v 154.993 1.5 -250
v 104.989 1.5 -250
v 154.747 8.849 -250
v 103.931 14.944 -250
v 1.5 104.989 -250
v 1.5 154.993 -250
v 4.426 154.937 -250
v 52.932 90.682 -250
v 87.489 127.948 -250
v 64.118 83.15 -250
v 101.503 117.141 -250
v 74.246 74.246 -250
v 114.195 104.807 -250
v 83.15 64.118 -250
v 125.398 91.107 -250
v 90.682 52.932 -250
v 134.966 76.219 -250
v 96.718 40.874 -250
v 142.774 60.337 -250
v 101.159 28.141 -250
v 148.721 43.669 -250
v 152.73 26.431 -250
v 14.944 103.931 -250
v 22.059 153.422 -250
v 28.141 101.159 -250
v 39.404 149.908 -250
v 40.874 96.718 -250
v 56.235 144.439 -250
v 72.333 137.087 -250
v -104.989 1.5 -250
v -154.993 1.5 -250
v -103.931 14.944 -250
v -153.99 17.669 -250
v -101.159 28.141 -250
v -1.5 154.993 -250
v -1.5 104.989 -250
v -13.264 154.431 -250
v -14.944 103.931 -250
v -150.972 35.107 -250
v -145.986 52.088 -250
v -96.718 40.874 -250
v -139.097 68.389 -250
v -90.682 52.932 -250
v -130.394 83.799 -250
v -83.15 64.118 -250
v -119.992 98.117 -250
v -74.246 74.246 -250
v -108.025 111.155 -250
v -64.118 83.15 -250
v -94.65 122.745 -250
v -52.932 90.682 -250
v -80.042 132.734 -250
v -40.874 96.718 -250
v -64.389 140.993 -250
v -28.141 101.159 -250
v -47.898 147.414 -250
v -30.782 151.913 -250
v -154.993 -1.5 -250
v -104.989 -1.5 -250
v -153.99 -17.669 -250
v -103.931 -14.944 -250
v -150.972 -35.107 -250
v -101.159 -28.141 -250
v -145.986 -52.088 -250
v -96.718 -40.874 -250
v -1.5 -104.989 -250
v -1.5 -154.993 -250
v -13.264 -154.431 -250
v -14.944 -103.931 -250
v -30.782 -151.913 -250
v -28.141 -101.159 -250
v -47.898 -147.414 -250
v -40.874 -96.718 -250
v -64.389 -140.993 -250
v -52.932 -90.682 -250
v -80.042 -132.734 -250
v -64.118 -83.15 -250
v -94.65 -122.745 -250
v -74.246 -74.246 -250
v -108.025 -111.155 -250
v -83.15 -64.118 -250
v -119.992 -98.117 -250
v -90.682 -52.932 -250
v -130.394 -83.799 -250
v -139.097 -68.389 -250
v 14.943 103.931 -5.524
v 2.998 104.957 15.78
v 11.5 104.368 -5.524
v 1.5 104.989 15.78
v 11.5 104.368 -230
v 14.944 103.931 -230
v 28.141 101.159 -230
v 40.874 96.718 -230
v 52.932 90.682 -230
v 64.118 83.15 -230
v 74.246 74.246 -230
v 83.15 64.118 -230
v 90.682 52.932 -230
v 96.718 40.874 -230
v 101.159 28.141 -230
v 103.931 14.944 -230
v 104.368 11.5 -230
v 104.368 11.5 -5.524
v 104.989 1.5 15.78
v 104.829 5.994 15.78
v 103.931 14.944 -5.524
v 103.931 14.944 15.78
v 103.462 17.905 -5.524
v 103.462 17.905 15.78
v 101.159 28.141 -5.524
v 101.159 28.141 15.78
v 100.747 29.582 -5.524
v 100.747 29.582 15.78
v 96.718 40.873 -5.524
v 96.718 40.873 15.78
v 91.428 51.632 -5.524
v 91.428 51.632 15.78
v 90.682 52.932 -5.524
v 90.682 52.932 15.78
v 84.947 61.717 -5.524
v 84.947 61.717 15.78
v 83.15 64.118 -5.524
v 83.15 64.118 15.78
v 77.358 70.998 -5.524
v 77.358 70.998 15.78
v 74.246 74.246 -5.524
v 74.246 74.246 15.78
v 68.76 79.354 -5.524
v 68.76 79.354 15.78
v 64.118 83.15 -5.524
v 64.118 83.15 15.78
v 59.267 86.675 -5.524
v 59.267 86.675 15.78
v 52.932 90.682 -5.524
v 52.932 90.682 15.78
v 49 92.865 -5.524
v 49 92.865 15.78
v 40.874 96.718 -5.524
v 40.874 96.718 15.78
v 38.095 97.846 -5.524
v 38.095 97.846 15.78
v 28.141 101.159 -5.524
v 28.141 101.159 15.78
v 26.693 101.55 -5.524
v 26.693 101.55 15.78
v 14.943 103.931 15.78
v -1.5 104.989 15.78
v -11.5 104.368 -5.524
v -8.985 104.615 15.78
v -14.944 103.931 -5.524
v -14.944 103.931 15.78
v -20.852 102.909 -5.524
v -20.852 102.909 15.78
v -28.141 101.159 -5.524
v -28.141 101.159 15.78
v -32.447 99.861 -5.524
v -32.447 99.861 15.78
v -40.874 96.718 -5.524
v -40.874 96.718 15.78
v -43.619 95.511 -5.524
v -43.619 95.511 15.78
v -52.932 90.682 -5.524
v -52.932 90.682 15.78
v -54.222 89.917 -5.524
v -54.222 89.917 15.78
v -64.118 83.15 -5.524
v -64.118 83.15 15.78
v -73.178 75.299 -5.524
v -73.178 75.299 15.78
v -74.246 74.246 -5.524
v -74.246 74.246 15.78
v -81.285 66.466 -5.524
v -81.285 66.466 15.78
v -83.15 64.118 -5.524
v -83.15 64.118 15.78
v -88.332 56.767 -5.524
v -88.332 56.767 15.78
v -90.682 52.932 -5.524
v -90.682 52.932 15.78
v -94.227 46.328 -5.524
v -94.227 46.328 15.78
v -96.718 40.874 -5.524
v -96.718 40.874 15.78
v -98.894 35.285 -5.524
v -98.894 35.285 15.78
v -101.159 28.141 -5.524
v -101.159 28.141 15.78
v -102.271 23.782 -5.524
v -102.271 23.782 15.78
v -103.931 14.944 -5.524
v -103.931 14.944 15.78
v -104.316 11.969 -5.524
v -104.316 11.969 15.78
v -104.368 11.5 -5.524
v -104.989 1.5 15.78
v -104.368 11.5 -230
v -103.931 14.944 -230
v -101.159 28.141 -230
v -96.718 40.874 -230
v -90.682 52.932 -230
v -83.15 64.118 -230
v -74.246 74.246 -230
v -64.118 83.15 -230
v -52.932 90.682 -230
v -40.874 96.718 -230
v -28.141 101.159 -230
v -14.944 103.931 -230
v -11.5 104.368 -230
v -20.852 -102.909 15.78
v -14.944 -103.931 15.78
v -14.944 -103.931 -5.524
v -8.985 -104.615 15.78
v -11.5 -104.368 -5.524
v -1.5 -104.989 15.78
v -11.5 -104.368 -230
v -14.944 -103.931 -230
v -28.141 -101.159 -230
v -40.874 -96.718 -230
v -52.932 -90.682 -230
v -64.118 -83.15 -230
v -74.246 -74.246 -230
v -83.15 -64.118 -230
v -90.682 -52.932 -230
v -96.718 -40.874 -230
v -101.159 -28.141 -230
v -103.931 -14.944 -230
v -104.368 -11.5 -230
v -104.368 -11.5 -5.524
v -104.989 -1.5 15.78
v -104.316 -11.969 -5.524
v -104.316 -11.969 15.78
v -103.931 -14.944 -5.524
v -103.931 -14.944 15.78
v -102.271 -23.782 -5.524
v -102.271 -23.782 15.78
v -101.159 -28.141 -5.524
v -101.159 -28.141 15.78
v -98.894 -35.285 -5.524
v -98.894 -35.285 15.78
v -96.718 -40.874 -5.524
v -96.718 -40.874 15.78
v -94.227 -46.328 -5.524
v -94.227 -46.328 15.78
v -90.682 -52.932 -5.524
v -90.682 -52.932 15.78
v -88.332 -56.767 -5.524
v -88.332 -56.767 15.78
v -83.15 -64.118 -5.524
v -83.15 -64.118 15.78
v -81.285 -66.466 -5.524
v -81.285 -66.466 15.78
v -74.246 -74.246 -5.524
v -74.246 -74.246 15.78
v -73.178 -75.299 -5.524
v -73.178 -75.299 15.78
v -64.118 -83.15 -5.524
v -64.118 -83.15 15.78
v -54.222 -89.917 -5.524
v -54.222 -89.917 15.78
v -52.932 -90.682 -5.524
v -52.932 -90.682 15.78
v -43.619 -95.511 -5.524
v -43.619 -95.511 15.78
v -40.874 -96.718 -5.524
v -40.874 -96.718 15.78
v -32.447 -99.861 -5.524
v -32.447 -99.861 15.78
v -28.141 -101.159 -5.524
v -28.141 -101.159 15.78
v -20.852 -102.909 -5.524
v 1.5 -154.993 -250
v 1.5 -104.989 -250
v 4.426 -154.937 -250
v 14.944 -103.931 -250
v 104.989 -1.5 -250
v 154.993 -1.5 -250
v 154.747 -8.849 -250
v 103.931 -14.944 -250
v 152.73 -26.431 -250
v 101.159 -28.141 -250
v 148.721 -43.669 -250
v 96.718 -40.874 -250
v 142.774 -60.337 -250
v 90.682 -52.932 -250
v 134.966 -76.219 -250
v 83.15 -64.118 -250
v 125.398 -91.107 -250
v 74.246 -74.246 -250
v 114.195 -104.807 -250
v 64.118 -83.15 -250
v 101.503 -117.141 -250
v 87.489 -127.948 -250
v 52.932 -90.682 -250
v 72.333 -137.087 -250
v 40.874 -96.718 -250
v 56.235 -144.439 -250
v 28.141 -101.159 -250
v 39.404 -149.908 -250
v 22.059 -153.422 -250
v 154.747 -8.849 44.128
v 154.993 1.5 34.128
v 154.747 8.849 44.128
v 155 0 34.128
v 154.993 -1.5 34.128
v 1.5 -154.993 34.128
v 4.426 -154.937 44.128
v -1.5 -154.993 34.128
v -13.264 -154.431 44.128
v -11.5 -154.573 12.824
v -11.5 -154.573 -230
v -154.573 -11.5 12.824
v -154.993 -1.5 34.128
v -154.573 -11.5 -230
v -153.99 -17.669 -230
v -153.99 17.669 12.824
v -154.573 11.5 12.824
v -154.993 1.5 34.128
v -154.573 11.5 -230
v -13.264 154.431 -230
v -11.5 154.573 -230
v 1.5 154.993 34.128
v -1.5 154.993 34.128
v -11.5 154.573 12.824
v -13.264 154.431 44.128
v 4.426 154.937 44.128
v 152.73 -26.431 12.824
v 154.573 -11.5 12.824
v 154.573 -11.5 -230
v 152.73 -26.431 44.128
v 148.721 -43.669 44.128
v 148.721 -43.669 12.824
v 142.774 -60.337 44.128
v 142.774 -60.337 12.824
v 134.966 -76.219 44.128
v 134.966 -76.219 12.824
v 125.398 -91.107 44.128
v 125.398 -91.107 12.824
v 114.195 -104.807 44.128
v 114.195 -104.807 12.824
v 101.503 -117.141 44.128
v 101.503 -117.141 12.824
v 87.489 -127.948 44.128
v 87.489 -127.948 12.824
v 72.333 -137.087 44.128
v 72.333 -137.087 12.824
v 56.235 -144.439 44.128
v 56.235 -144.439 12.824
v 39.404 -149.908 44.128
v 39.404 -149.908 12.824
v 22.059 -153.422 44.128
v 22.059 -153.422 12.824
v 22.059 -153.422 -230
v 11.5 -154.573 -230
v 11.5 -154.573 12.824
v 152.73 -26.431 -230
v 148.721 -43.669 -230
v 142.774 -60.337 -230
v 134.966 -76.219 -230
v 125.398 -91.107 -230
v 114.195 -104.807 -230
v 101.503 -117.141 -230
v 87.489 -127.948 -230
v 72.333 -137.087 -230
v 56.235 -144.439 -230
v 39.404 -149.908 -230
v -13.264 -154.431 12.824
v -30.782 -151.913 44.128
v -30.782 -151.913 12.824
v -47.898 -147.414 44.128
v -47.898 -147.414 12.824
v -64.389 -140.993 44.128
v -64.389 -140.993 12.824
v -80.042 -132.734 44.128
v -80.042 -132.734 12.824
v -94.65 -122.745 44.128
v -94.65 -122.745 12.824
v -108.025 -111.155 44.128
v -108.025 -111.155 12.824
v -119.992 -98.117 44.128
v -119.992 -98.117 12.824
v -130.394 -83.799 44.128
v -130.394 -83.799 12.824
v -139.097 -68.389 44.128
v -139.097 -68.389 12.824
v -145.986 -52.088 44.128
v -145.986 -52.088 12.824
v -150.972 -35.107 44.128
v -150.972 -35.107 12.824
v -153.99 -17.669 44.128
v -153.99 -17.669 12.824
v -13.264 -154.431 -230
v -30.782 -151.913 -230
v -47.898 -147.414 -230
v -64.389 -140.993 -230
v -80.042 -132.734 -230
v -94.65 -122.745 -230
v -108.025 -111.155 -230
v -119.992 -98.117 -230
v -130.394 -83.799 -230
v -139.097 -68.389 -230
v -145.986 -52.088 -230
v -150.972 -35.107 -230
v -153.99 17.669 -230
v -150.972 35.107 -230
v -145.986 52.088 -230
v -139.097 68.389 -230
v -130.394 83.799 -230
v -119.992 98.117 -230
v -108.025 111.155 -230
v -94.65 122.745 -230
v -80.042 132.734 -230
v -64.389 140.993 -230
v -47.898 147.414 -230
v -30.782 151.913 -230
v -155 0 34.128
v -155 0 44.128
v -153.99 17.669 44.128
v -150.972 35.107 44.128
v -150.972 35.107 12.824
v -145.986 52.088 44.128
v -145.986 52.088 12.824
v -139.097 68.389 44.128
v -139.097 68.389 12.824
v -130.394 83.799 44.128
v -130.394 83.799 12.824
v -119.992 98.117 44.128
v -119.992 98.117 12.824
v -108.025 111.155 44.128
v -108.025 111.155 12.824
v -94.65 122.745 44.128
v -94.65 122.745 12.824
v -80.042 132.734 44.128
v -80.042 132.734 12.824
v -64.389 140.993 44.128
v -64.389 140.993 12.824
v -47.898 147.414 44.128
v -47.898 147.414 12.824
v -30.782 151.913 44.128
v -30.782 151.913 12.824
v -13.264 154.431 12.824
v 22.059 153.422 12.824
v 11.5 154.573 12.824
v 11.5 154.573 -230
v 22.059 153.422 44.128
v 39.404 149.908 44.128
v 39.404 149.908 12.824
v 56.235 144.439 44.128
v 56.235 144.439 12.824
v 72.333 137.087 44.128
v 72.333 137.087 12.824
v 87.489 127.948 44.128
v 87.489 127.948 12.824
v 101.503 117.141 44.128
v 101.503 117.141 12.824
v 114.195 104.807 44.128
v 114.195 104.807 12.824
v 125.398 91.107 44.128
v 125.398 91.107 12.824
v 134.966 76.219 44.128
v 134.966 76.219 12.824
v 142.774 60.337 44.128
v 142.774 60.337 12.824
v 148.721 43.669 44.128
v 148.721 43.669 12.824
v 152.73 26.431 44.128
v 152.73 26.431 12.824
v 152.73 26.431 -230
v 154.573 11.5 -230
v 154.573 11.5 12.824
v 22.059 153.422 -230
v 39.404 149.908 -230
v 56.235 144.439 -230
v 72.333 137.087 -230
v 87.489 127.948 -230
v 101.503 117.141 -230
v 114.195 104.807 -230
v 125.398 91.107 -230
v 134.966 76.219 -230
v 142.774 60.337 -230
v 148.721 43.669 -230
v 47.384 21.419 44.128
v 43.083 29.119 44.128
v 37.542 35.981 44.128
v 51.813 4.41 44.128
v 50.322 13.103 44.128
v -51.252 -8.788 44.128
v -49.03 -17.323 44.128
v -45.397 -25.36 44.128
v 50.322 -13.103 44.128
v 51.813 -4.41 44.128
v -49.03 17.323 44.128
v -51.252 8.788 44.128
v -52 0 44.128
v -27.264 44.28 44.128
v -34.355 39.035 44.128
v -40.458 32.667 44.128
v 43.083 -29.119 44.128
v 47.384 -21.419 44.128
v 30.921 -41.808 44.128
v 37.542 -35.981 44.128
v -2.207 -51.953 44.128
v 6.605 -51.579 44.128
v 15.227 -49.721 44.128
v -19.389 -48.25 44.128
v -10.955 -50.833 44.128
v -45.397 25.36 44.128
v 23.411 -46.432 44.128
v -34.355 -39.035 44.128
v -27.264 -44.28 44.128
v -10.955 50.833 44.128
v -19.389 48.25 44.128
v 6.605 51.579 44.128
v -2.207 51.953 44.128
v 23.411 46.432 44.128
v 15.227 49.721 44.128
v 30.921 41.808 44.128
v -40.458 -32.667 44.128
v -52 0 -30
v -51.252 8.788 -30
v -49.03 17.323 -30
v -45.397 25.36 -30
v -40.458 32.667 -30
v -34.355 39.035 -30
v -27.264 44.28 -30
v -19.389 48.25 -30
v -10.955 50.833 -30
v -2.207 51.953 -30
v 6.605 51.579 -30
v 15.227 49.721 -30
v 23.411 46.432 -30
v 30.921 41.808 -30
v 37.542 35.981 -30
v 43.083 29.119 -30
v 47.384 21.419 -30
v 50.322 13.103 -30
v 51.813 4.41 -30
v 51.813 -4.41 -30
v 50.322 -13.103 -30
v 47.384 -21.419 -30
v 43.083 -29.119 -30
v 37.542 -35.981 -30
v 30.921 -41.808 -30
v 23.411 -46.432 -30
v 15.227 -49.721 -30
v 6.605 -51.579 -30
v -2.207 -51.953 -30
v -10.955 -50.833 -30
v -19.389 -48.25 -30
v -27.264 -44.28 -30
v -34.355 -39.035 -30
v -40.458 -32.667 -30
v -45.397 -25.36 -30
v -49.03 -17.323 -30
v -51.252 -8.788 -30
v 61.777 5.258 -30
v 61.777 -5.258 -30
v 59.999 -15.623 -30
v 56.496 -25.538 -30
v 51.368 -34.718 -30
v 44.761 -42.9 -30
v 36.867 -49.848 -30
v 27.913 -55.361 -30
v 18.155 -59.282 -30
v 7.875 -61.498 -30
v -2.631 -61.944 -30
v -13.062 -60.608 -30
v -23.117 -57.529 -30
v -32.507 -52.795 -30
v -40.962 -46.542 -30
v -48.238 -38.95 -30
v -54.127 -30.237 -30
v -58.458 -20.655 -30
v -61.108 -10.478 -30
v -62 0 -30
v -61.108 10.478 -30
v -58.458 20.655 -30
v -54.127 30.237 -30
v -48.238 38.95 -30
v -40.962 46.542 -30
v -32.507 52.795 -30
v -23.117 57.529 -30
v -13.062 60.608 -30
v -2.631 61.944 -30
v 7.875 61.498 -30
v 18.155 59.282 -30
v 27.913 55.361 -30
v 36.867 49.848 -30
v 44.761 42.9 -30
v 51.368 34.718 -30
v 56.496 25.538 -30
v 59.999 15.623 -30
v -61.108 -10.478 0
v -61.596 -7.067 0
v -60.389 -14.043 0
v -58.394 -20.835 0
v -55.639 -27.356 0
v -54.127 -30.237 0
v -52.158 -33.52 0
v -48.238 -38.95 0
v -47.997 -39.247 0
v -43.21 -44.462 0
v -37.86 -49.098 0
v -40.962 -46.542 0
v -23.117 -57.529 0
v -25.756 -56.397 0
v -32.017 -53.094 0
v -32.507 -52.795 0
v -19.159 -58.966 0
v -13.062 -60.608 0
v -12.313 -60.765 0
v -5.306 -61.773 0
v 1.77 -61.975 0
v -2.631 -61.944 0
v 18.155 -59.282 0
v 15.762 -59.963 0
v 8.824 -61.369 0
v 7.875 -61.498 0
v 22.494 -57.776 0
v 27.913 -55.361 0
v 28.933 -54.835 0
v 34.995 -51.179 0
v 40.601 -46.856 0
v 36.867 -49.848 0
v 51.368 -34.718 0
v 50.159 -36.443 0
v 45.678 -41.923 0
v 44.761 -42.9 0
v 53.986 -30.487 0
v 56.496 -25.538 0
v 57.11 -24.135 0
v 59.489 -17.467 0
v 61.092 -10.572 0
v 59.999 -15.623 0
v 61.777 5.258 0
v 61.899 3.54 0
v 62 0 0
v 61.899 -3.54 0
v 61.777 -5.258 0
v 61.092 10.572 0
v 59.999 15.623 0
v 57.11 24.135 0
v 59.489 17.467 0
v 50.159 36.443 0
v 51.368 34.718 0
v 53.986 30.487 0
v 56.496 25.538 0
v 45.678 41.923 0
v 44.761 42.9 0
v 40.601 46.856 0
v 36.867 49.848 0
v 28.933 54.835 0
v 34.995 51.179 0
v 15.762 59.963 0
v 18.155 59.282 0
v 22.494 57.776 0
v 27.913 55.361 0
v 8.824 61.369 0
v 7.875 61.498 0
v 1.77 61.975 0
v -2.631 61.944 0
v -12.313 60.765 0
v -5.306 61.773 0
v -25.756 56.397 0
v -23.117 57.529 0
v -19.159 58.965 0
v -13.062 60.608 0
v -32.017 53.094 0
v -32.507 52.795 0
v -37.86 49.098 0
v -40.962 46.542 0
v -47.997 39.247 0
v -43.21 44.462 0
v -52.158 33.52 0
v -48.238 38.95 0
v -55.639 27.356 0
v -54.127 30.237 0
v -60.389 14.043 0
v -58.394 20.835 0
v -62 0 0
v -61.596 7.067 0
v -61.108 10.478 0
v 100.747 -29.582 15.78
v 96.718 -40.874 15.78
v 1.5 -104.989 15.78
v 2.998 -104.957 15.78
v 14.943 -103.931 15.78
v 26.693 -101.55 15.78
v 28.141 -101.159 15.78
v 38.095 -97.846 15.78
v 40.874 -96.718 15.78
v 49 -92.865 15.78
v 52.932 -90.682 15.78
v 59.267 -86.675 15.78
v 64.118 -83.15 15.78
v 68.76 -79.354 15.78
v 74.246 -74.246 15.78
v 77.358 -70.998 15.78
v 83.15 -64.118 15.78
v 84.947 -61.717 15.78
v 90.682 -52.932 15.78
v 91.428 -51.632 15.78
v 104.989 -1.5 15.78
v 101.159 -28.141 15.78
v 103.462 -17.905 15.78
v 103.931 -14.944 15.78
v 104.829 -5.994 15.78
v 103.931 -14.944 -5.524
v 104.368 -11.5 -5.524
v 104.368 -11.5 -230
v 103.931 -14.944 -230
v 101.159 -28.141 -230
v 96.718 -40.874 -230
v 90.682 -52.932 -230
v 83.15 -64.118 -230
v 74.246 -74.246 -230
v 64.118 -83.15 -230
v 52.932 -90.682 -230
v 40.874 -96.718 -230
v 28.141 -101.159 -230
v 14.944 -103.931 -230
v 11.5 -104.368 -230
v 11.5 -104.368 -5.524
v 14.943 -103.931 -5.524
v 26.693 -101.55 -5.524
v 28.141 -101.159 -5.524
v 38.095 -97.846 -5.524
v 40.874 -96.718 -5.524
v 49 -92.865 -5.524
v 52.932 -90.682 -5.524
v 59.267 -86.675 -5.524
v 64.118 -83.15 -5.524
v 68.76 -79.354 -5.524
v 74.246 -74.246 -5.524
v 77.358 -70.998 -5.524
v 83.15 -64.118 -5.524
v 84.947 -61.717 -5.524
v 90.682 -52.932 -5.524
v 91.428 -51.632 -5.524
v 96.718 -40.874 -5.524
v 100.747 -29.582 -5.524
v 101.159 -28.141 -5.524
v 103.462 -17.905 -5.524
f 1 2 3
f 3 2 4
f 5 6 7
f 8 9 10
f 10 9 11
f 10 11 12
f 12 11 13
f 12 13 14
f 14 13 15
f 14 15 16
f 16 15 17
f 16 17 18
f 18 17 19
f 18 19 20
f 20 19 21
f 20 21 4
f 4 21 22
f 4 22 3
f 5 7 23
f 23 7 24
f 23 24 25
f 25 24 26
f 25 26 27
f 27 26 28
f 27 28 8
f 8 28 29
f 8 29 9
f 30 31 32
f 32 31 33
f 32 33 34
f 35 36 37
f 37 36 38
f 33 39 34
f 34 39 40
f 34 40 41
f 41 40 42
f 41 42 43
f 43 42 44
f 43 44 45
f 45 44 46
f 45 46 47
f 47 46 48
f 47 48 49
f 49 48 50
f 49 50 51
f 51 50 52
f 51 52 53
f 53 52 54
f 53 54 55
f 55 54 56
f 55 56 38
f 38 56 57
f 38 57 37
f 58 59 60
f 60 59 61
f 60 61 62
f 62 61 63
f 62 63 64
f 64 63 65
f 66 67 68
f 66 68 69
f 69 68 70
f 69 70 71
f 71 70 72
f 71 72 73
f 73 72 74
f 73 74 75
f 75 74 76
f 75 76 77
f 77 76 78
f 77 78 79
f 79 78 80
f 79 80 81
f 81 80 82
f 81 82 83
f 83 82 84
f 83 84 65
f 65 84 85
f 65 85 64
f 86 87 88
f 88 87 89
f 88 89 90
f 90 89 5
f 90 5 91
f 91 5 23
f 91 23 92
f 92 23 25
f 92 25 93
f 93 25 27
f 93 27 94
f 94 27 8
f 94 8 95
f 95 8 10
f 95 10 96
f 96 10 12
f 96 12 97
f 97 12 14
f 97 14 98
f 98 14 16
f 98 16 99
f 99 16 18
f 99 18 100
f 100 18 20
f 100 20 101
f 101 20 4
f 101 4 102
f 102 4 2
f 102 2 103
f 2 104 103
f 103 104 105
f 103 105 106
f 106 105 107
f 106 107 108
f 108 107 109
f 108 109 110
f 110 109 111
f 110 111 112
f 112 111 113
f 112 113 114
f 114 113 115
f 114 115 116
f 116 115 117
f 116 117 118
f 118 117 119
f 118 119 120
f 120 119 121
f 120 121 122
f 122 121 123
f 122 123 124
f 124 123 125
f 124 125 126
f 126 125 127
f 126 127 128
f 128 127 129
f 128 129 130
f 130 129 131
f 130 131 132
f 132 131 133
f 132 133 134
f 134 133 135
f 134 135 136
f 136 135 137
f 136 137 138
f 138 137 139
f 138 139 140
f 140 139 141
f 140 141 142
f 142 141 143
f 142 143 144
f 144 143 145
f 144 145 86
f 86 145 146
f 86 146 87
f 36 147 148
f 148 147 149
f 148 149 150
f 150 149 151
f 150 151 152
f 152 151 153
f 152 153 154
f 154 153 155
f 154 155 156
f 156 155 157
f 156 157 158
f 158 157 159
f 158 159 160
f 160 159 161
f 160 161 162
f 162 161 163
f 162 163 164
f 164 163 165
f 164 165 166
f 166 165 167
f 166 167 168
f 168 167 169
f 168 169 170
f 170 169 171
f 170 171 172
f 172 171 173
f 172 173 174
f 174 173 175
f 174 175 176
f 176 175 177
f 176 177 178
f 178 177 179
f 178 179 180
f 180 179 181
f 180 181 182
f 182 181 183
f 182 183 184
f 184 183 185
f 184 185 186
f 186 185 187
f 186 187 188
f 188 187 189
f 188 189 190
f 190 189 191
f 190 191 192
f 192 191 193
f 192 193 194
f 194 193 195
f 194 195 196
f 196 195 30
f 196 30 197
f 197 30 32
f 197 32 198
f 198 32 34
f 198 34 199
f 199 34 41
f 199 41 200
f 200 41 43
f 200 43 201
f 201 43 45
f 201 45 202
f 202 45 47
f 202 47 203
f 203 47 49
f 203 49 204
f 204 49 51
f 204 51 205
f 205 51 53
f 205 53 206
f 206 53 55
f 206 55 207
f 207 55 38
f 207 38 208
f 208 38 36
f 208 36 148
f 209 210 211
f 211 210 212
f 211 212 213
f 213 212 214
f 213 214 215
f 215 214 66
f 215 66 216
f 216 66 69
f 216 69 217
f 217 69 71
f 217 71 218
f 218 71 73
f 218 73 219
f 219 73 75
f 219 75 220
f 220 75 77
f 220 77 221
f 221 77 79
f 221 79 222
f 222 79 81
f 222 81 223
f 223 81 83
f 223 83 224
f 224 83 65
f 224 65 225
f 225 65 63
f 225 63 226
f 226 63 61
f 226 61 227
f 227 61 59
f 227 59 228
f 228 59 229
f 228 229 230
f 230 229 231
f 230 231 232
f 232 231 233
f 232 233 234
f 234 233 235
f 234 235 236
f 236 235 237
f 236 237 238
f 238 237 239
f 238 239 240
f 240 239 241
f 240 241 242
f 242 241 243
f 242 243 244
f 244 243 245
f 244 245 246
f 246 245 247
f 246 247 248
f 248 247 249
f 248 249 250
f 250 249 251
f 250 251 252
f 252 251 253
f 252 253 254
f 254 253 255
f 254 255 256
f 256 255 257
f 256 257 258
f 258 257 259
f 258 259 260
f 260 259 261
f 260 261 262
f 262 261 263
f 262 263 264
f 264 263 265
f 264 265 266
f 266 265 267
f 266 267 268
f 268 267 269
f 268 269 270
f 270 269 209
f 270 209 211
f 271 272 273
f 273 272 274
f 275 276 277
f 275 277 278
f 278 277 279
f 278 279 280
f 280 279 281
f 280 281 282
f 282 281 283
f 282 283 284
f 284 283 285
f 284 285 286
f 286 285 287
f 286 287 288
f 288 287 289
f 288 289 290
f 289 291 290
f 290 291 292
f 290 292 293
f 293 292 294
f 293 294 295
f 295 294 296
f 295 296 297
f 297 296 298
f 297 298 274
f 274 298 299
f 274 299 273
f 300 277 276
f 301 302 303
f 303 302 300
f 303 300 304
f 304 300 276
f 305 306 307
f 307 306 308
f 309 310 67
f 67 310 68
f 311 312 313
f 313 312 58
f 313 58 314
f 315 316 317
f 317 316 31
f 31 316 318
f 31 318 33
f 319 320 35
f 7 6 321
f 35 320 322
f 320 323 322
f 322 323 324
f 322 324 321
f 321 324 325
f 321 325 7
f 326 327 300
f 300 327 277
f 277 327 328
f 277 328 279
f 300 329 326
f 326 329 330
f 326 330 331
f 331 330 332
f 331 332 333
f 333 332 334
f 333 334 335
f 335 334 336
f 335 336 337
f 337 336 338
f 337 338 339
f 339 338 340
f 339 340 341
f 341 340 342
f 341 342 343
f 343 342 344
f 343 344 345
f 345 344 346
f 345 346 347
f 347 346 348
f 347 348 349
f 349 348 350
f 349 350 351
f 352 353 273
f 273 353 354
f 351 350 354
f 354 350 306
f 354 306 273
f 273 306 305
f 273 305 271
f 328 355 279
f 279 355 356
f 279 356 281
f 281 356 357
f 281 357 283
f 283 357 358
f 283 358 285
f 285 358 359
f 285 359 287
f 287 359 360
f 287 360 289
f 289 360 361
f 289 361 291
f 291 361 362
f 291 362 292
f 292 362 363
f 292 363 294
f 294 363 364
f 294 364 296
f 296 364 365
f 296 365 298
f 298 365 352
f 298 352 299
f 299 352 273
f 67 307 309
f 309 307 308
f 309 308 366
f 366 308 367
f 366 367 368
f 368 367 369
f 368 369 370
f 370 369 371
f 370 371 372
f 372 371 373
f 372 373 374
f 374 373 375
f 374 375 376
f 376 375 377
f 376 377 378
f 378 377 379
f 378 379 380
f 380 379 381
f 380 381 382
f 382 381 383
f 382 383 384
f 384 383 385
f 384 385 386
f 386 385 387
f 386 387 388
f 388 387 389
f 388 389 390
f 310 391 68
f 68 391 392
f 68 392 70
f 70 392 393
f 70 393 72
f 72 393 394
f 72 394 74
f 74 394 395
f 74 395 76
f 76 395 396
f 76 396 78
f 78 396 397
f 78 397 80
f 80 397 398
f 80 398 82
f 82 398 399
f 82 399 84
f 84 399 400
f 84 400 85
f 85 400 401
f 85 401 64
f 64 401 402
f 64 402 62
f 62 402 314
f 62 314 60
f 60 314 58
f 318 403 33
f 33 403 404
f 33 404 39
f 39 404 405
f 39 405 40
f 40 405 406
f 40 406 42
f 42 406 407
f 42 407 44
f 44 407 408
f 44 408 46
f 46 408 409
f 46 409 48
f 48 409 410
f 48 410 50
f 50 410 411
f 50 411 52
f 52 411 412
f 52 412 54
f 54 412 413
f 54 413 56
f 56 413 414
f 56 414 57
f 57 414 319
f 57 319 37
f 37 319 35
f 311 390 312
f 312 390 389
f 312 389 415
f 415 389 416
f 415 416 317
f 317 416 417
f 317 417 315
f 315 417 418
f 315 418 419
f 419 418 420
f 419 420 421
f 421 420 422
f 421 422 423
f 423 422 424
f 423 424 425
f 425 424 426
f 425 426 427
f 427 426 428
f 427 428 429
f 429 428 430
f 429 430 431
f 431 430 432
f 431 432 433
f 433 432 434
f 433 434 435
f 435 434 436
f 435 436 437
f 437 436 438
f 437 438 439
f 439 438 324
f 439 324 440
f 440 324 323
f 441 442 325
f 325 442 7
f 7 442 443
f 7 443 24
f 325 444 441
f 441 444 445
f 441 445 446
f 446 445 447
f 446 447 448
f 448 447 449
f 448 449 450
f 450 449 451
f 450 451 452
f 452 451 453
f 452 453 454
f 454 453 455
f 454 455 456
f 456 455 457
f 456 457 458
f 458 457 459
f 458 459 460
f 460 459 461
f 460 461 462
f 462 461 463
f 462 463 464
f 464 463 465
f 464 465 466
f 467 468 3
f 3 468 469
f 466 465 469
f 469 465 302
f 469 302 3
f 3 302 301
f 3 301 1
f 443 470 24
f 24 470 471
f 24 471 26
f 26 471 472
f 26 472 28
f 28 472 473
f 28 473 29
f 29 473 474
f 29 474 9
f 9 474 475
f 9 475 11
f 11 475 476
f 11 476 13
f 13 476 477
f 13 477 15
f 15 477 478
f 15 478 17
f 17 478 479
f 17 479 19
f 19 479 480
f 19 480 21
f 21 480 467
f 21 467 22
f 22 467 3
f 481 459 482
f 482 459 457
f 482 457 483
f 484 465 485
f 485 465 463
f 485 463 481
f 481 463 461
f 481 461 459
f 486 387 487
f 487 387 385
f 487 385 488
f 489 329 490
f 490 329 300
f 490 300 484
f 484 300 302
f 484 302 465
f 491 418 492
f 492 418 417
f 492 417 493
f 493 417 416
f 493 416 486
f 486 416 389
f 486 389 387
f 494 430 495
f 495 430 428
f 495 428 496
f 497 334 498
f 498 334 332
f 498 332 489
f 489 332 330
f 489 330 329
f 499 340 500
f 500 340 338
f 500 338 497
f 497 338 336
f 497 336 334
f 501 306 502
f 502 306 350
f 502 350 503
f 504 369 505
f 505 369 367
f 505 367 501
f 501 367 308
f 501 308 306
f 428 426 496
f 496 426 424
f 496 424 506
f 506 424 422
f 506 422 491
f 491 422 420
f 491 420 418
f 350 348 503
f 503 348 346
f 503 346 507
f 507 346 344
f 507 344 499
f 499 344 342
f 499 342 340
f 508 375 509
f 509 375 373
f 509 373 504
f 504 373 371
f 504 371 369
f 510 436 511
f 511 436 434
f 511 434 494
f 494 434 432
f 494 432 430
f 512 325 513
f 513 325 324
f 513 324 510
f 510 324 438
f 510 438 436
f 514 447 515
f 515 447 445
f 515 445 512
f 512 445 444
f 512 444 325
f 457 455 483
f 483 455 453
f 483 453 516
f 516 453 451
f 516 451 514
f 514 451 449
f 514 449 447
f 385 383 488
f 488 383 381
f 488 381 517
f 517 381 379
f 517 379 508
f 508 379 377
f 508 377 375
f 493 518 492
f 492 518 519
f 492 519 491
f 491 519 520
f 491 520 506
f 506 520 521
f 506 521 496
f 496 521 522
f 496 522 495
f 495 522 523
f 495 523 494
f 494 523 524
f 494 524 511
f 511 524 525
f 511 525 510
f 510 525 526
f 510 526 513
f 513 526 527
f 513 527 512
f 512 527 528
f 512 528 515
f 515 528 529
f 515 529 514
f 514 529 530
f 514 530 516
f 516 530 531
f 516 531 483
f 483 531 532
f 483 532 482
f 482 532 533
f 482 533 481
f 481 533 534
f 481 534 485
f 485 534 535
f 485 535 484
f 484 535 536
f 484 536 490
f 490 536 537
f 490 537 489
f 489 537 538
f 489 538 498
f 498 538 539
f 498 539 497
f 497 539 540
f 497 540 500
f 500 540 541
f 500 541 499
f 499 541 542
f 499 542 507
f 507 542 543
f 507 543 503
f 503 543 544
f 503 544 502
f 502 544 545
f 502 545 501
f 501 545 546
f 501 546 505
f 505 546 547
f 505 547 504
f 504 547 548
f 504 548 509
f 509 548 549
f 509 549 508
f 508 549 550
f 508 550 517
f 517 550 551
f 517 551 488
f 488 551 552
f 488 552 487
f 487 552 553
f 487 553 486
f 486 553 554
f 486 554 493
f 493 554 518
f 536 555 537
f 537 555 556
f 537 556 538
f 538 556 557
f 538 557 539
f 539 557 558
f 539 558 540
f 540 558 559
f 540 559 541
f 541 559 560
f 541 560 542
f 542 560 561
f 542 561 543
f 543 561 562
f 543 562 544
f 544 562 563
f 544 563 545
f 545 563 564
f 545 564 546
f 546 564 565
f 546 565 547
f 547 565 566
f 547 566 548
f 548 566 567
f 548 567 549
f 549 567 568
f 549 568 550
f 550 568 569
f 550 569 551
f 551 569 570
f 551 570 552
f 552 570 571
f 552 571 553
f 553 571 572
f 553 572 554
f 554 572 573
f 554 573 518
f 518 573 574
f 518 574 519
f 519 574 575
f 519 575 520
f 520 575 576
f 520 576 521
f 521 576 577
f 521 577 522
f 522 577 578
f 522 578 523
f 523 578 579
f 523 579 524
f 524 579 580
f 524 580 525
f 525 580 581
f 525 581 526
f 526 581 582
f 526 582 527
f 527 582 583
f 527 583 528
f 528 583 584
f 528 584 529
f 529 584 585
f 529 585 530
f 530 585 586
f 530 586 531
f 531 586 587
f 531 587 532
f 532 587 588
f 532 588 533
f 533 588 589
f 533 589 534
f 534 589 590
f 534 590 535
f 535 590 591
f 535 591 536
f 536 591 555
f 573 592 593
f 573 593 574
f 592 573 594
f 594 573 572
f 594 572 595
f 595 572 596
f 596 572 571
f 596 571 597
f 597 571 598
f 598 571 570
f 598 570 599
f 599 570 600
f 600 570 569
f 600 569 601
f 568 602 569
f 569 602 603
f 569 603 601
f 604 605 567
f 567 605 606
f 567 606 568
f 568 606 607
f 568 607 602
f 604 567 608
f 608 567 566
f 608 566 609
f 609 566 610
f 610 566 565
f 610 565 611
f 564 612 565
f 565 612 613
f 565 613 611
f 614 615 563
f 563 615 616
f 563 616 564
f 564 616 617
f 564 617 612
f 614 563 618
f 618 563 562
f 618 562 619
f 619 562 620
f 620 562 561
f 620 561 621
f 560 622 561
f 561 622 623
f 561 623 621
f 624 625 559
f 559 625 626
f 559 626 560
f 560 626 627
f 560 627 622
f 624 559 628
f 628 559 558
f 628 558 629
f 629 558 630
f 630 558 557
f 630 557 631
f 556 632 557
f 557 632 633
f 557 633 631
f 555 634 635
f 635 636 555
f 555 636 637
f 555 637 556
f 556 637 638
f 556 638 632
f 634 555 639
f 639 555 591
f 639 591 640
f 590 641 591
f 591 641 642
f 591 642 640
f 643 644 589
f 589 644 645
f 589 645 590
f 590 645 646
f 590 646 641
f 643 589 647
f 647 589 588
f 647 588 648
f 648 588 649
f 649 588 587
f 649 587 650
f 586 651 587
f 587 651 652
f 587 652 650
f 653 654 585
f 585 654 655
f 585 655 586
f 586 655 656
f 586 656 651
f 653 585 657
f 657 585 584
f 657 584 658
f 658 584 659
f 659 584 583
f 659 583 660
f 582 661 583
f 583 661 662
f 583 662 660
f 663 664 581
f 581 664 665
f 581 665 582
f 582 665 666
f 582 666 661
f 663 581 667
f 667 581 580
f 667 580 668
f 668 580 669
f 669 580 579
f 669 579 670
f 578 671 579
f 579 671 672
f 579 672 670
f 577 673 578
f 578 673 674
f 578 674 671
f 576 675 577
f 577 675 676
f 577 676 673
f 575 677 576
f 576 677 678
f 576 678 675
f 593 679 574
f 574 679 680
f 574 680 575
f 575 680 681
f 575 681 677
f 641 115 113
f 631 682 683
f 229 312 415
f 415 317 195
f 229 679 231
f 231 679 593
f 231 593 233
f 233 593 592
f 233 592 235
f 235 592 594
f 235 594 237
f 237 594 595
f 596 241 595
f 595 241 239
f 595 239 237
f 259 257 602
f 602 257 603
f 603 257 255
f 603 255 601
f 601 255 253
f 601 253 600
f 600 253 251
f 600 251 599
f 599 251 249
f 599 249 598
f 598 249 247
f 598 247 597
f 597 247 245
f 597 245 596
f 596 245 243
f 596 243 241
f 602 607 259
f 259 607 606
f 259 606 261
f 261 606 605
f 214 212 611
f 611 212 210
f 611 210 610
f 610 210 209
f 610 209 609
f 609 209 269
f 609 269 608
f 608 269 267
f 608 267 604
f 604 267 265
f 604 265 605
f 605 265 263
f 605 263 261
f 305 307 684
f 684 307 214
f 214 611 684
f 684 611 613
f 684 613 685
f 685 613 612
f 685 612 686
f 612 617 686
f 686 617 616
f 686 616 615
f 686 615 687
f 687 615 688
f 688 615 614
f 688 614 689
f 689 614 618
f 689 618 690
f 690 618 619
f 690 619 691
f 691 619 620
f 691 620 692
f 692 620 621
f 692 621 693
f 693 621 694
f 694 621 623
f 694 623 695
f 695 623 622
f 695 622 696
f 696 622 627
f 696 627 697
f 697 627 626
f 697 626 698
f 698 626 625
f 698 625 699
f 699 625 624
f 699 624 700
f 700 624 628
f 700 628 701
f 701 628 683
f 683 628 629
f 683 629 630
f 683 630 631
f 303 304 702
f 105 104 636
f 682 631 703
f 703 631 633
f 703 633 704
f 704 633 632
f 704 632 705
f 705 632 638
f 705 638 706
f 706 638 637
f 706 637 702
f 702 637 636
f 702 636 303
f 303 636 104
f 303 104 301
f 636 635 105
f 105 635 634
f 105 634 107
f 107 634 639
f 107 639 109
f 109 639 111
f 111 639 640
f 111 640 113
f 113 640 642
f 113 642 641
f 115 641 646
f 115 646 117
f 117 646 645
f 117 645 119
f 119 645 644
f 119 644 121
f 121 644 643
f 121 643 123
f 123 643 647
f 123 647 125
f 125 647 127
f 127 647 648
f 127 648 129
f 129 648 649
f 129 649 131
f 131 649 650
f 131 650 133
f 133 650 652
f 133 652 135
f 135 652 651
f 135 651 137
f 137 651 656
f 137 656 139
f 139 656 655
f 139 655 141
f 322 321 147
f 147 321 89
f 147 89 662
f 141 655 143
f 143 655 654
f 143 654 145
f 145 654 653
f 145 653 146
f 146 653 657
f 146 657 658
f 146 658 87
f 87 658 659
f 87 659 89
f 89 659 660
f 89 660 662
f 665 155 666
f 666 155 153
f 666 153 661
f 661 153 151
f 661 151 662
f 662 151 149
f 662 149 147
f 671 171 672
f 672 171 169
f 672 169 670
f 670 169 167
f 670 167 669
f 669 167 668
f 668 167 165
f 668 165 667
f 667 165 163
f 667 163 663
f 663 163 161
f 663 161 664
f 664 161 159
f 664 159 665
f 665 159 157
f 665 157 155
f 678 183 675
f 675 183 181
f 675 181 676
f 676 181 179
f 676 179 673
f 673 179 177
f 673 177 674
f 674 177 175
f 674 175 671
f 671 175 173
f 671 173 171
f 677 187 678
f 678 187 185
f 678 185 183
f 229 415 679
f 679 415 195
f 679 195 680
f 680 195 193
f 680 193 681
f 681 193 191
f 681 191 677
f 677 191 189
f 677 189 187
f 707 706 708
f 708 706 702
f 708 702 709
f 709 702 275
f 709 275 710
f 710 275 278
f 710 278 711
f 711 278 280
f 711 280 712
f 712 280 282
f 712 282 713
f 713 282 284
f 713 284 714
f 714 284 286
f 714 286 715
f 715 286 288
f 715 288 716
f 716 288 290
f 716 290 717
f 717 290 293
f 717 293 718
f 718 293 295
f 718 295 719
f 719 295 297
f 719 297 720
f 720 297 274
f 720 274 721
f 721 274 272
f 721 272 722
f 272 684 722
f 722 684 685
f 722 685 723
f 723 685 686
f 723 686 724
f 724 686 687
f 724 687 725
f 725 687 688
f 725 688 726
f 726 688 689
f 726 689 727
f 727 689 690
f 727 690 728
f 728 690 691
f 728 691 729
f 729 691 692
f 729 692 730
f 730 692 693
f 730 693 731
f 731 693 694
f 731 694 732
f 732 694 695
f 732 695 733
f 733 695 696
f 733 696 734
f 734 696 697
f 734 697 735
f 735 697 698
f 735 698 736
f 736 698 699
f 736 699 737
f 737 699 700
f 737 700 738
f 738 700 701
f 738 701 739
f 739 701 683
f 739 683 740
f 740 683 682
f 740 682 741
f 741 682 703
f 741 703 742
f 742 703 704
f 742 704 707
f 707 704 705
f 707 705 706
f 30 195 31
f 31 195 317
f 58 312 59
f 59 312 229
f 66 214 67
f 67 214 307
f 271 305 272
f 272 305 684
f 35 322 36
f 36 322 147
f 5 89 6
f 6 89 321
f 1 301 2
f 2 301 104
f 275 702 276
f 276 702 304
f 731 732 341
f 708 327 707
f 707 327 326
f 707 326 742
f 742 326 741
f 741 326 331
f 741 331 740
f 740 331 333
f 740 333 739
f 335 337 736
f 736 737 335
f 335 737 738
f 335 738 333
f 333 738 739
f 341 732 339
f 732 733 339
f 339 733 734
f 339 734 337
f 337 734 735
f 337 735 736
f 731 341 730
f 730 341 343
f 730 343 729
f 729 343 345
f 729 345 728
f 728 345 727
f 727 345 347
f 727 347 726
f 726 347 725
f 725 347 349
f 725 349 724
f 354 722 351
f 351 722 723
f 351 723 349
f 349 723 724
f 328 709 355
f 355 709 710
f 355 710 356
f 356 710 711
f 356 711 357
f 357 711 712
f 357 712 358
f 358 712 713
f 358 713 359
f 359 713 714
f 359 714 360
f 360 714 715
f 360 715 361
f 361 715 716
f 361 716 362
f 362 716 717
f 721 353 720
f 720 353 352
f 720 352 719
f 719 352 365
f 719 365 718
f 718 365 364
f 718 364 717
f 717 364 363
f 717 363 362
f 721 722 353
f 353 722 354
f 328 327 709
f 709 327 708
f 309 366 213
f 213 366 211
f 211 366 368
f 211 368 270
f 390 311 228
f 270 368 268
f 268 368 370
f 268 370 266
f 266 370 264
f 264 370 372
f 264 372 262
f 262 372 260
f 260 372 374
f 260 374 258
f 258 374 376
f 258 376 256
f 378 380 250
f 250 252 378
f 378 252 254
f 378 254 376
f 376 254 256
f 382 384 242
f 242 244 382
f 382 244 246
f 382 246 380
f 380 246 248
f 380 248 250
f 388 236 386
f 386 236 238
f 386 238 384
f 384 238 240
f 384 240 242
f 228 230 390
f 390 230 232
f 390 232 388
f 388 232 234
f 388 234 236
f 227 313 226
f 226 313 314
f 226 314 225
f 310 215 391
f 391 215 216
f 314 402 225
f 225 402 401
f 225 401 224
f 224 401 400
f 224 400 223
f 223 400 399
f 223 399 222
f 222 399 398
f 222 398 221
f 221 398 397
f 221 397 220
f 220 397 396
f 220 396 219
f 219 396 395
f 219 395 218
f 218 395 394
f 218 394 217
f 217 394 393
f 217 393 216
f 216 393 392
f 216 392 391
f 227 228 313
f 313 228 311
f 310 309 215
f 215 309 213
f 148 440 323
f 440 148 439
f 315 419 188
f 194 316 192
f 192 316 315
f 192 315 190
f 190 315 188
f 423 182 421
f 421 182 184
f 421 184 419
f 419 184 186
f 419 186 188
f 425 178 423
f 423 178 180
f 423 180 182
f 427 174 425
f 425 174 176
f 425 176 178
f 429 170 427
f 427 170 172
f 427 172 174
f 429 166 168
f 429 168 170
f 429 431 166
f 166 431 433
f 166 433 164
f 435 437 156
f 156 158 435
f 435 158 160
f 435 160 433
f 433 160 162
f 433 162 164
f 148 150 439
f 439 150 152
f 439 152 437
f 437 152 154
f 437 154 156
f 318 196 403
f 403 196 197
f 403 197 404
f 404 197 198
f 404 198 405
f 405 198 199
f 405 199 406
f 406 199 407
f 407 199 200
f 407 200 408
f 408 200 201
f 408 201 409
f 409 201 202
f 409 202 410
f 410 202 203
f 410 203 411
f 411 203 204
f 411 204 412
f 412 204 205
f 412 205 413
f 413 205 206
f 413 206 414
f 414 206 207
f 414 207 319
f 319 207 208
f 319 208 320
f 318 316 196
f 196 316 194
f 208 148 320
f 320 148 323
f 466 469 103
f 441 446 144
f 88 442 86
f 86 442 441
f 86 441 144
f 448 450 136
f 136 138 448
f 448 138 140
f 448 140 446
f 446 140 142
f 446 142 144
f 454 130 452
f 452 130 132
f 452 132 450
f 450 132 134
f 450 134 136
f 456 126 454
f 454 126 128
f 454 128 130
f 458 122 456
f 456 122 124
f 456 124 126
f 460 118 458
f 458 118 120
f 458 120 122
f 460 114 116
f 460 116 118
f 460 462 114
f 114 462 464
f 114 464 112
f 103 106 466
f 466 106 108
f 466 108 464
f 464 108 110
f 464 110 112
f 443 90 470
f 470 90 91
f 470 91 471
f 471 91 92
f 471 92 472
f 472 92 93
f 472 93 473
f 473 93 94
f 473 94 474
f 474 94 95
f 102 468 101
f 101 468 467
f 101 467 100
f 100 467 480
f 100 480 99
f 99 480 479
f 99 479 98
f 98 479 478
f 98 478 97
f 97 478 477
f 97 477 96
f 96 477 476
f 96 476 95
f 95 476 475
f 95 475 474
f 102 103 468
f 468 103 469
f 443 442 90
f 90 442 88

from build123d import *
from build123d.topology import SkipClean

# Parameters (mm, degrees)
CUT_EXTRUDE2_REACH = 368.826
CUT_EXTRUDE3_REACH = 388.826
CUT_EXTRUDE3_START = -20


with BuildPart() as part:
    # Sketch1 → Revolve1 (revolve)
    with BuildSketch(Plane(origin=(0, 0, 0), x_dir=(1, 0, 0), z_dir=(0, 1, 0)), mode=Mode.PRIVATE) as revolve1_sk:
        Polygon((52, -44.128440367), (52, 30), (62, 30), (62, 0), (105, -15.779816514), (105, 250), (155, 250), (155, -44.128440367), align=None)
    revolve(revolve1_sk.sketch.rotate(Axis((0, 0, 0), (0, 0, 1)), 180), axis=Axis((0, 0, 0), (0, 0, 1)))

    # Cut-Extrude2: up to this cone (the profile starts outside it)
    with SkipClean():  # the faces are left unmerged after this step: merging them gives an invalid solid
        cut_extrude2_end = Plane(origin=(0, 0, -250), z_dir=(0, 0, 1)).offset(227.247707422) * Cone(2.725e-06, 387.16335, 142.078292578, align=(Align.CENTER, Align.CENTER, Align.MIN), mode=Mode.PRIVATE)
        # Sketch2 → Cut-Extrude2 (cut, up to the surface)
        with BuildSketch(Plane(origin=(0, 0, -250), x_dir=(-1, 0, 0), z_dir=(0, 0, -1)), mode=Mode.PRIVATE) as cut_extrude2_sk1:
            with BuildLine():
                Line((-1.5, 154.992741766), (-1.5, 104.989285168))
                ThreePointArc((-1.5, 104.989285168), (0, 105), (1.5, 104.989285168))
                Line((1.5, 104.989285168), (1.5, 154.992741766))
                ThreePointArc((1.5, 154.992741766), (0, 155), (-1.5, 154.992741766))
            make_face()
        cut_extrude2_tool1 = extrude(cut_extrude2_sk1.sketch, amount=-CUT_EXTRUDE2_REACH, mode=Mode.PRIVATE) - cut_extrude2_end
        add(cut_extrude2_tool1.solids().sort_by_distance((0, 129.997004, -250))[0], mode=Mode.SUBTRACT)
        # Sketch2 → Cut-Extrude2 (cut, up to the surface)
        with BuildSketch(Plane(origin=(0, 0, -250), x_dir=(-1, 0, 0), z_dir=(0, 0, -1)), mode=Mode.PRIVATE) as cut_extrude2_sk2:
            with BuildLine():
                Line((104.989285168, 1.5), (154.992741766, 1.5))
                ThreePointArc((154.992741766, 1.5), (155, 0), (154.992741766, -1.5))
                Line((154.992741766, -1.5), (104.989285168, -1.5))
                ThreePointArc((104.989285168, -1.5), (105, 0), (104.989285168, 1.5))
            make_face()
        cut_extrude2_tool2 = extrude(cut_extrude2_sk2.sketch, amount=-CUT_EXTRUDE2_REACH, mode=Mode.PRIVATE) - cut_extrude2_end
        add(cut_extrude2_tool2.solids().sort_by_distance((-129.997004, 0, -250))[0], mode=Mode.SUBTRACT)
        # Sketch2 → Cut-Extrude2 (cut, up to the surface)
        with BuildSketch(Plane(origin=(0, 0, -250), x_dir=(-1, 0, 0), z_dir=(0, 0, -1)), mode=Mode.PRIVATE) as cut_extrude2_sk3:
            with BuildLine():
                Line((-1.5, -104.989285168), (-1.5, -154.992741766))
                ThreePointArc((-1.5, -154.992741766), (0, -155), (1.5, -154.992741766))
                Line((1.5, -154.992741766), (1.5, -104.989285168))
                ThreePointArc((1.5, -104.989285168), (0, -105), (-1.5, -104.989285168))
            make_face()
        cut_extrude2_tool3 = extrude(cut_extrude2_sk3.sketch, amount=-CUT_EXTRUDE2_REACH, mode=Mode.PRIVATE) - cut_extrude2_end
        add(cut_extrude2_tool3.solids().sort_by_distance((0, -129.997004, -250))[0], mode=Mode.SUBTRACT)
        # Sketch2 → Cut-Extrude2 (cut, up to the surface)
        with BuildSketch(Plane(origin=(0, 0, -250), x_dir=(-1, 0, 0), z_dir=(0, 0, -1)), mode=Mode.PRIVATE) as cut_extrude2_sk4:
            with BuildLine():
                Line((-154.992741766, 1.5), (-104.989285168, 1.5))
                ThreePointArc((-104.989285168, 1.5), (-105, 0), (-104.989285168, -1.5))
                Line((-104.989285168, -1.5), (-154.992741766, -1.5))
                ThreePointArc((-154.992741766, -1.5), (-155, 0), (-154.992741766, 1.5))
            make_face()
        cut_extrude2_tool4 = extrude(cut_extrude2_sk4.sketch, amount=-CUT_EXTRUDE2_REACH, mode=Mode.PRIVATE) - cut_extrude2_end
        add(cut_extrude2_tool4.solids().sort_by_distance((129.997004, 0, -250))[0], mode=Mode.SUBTRACT)

    # Cut-Extrude3: up to this cone (the profile starts outside it)
    with SkipClean():  # the faces are left unmerged after this step: merging them gives an invalid solid
        cut_extrude3_end = Plane(origin=(0, 0, -230), z_dir=(0, 0, 1)).offset(185.943540704) * Cone(2.725e-06, 554.217204308, 203.382459296, align=(Align.CENTER, Align.CENTER, Align.MIN), mode=Mode.PRIVATE)
        # Sketch4 → Cut-Extrude3 (cut, up to the surface)
        with BuildSketch(Plane(origin=(0, 0, -250), x_dir=(-1, 0, 0), z_dir=(0, 0, -1)).offset(CUT_EXTRUDE3_START), mode=Mode.PRIVATE) as cut_extrude3_sk1:
            with BuildLine():
                Line((-154.572798383, -11.5), (-104.368338111, -11.5))
                ThreePointArc((-104.368338111, -11.5), (-74.246212025, -74.246212025), (-11.5, -104.368338111))
                Line((-11.5, -104.368338111), (-11.5, -154.572798383))
                ThreePointArc((-11.5, -154.572798383), (-109.601551084, -109.601551084), (-154.572798383, -11.5))
            make_face()
        cut_extrude3_tool1 = extrude(cut_extrude3_sk1.sketch, amount=-CUT_EXTRUDE3_REACH, mode=Mode.PRIVATE) - cut_extrude3_end
        add(cut_extrude3_tool1.solids().sort_by_distance((85.813767, -85.813767, -230))[0], mode=Mode.SUBTRACT)
        # Sketch4 → Cut-Extrude3 (cut, up to the surface)
        with BuildSketch(Plane(origin=(0, 0, -250), x_dir=(-1, 0, 0), z_dir=(0, 0, -1)).offset(CUT_EXTRUDE3_START), mode=Mode.PRIVATE) as cut_extrude3_sk2:
            with BuildLine():
                Line((11.5, -104.368338111), (11.5, -154.572798383))
                ThreePointArc((11.5, -154.572798383), (109.601551084, -109.601551084), (154.572798383, -11.5))
                Line((154.572798383, -11.5), (104.368338111, -11.5))
                ThreePointArc((104.368338111, -11.5), (74.246212025, -74.246212025), (11.5, -104.368338111))
            make_face()
        cut_extrude3_tool2 = extrude(cut_extrude3_sk2.sketch, amount=-CUT_EXTRUDE3_REACH, mode=Mode.PRIVATE) - cut_extrude3_end
        add(cut_extrude3_tool2.solids().sort_by_distance((-85.813767, -85.813767, -230))[0], mode=Mode.SUBTRACT)
        # Sketch4 → Cut-Extrude3 (cut, up to the surface)
        with BuildSketch(Plane(origin=(0, 0, -250), x_dir=(-1, 0, 0), z_dir=(0, 0, -1)).offset(CUT_EXTRUDE3_START), mode=Mode.PRIVATE) as cut_extrude3_sk3:
            with BuildLine():
                Line((154.572798383, 11.5), (104.368338111, 11.5))
                ThreePointArc((104.368338111, 11.5), (74.246212025, 74.246212025), (11.5, 104.368338111))
                Line((11.5, 104.368338111), (11.5, 154.572798383))
                ThreePointArc((11.5, 154.572798383), (109.601551084, 109.601551084), (154.572798383, 11.5))
            make_face()
        cut_extrude3_tool3 = extrude(cut_extrude3_sk3.sketch, amount=-CUT_EXTRUDE3_REACH, mode=Mode.PRIVATE) - cut_extrude3_end
        add(cut_extrude3_tool3.solids().sort_by_distance((-85.813767, 85.813767, -230))[0], mode=Mode.SUBTRACT)
        # Sketch4 → Cut-Extrude3 (cut, up to the surface)
        with BuildSketch(Plane(origin=(0, 0, -250), x_dir=(-1, 0, 0), z_dir=(0, 0, -1)).offset(CUT_EXTRUDE3_START), mode=Mode.PRIVATE) as cut_extrude3_sk4:
            with BuildLine():
                Line((-11.5, 104.368338111), (-11.5, 154.572798383))
                ThreePointArc((-11.5, 154.572798383), (-109.601551084, 109.601551084), (-154.572798383, 11.5))
                Line((-154.572798383, 11.5), (-104.368338111, 11.5))
                ThreePointArc((-104.368338111, 11.5), (-74.246212025, 74.246212025), (-11.5, 104.368338111))
            make_face()
        cut_extrude3_tool4 = extrude(cut_extrude3_sk4.sketch, amount=-CUT_EXTRUDE3_REACH, mode=Mode.PRIVATE) - cut_extrude3_end
        add(cut_extrude3_tool4.solids().sort_by_distance((85.813767, 85.813767, -230))[0], mode=Mode.SUBTRACT)


solid = part.part
